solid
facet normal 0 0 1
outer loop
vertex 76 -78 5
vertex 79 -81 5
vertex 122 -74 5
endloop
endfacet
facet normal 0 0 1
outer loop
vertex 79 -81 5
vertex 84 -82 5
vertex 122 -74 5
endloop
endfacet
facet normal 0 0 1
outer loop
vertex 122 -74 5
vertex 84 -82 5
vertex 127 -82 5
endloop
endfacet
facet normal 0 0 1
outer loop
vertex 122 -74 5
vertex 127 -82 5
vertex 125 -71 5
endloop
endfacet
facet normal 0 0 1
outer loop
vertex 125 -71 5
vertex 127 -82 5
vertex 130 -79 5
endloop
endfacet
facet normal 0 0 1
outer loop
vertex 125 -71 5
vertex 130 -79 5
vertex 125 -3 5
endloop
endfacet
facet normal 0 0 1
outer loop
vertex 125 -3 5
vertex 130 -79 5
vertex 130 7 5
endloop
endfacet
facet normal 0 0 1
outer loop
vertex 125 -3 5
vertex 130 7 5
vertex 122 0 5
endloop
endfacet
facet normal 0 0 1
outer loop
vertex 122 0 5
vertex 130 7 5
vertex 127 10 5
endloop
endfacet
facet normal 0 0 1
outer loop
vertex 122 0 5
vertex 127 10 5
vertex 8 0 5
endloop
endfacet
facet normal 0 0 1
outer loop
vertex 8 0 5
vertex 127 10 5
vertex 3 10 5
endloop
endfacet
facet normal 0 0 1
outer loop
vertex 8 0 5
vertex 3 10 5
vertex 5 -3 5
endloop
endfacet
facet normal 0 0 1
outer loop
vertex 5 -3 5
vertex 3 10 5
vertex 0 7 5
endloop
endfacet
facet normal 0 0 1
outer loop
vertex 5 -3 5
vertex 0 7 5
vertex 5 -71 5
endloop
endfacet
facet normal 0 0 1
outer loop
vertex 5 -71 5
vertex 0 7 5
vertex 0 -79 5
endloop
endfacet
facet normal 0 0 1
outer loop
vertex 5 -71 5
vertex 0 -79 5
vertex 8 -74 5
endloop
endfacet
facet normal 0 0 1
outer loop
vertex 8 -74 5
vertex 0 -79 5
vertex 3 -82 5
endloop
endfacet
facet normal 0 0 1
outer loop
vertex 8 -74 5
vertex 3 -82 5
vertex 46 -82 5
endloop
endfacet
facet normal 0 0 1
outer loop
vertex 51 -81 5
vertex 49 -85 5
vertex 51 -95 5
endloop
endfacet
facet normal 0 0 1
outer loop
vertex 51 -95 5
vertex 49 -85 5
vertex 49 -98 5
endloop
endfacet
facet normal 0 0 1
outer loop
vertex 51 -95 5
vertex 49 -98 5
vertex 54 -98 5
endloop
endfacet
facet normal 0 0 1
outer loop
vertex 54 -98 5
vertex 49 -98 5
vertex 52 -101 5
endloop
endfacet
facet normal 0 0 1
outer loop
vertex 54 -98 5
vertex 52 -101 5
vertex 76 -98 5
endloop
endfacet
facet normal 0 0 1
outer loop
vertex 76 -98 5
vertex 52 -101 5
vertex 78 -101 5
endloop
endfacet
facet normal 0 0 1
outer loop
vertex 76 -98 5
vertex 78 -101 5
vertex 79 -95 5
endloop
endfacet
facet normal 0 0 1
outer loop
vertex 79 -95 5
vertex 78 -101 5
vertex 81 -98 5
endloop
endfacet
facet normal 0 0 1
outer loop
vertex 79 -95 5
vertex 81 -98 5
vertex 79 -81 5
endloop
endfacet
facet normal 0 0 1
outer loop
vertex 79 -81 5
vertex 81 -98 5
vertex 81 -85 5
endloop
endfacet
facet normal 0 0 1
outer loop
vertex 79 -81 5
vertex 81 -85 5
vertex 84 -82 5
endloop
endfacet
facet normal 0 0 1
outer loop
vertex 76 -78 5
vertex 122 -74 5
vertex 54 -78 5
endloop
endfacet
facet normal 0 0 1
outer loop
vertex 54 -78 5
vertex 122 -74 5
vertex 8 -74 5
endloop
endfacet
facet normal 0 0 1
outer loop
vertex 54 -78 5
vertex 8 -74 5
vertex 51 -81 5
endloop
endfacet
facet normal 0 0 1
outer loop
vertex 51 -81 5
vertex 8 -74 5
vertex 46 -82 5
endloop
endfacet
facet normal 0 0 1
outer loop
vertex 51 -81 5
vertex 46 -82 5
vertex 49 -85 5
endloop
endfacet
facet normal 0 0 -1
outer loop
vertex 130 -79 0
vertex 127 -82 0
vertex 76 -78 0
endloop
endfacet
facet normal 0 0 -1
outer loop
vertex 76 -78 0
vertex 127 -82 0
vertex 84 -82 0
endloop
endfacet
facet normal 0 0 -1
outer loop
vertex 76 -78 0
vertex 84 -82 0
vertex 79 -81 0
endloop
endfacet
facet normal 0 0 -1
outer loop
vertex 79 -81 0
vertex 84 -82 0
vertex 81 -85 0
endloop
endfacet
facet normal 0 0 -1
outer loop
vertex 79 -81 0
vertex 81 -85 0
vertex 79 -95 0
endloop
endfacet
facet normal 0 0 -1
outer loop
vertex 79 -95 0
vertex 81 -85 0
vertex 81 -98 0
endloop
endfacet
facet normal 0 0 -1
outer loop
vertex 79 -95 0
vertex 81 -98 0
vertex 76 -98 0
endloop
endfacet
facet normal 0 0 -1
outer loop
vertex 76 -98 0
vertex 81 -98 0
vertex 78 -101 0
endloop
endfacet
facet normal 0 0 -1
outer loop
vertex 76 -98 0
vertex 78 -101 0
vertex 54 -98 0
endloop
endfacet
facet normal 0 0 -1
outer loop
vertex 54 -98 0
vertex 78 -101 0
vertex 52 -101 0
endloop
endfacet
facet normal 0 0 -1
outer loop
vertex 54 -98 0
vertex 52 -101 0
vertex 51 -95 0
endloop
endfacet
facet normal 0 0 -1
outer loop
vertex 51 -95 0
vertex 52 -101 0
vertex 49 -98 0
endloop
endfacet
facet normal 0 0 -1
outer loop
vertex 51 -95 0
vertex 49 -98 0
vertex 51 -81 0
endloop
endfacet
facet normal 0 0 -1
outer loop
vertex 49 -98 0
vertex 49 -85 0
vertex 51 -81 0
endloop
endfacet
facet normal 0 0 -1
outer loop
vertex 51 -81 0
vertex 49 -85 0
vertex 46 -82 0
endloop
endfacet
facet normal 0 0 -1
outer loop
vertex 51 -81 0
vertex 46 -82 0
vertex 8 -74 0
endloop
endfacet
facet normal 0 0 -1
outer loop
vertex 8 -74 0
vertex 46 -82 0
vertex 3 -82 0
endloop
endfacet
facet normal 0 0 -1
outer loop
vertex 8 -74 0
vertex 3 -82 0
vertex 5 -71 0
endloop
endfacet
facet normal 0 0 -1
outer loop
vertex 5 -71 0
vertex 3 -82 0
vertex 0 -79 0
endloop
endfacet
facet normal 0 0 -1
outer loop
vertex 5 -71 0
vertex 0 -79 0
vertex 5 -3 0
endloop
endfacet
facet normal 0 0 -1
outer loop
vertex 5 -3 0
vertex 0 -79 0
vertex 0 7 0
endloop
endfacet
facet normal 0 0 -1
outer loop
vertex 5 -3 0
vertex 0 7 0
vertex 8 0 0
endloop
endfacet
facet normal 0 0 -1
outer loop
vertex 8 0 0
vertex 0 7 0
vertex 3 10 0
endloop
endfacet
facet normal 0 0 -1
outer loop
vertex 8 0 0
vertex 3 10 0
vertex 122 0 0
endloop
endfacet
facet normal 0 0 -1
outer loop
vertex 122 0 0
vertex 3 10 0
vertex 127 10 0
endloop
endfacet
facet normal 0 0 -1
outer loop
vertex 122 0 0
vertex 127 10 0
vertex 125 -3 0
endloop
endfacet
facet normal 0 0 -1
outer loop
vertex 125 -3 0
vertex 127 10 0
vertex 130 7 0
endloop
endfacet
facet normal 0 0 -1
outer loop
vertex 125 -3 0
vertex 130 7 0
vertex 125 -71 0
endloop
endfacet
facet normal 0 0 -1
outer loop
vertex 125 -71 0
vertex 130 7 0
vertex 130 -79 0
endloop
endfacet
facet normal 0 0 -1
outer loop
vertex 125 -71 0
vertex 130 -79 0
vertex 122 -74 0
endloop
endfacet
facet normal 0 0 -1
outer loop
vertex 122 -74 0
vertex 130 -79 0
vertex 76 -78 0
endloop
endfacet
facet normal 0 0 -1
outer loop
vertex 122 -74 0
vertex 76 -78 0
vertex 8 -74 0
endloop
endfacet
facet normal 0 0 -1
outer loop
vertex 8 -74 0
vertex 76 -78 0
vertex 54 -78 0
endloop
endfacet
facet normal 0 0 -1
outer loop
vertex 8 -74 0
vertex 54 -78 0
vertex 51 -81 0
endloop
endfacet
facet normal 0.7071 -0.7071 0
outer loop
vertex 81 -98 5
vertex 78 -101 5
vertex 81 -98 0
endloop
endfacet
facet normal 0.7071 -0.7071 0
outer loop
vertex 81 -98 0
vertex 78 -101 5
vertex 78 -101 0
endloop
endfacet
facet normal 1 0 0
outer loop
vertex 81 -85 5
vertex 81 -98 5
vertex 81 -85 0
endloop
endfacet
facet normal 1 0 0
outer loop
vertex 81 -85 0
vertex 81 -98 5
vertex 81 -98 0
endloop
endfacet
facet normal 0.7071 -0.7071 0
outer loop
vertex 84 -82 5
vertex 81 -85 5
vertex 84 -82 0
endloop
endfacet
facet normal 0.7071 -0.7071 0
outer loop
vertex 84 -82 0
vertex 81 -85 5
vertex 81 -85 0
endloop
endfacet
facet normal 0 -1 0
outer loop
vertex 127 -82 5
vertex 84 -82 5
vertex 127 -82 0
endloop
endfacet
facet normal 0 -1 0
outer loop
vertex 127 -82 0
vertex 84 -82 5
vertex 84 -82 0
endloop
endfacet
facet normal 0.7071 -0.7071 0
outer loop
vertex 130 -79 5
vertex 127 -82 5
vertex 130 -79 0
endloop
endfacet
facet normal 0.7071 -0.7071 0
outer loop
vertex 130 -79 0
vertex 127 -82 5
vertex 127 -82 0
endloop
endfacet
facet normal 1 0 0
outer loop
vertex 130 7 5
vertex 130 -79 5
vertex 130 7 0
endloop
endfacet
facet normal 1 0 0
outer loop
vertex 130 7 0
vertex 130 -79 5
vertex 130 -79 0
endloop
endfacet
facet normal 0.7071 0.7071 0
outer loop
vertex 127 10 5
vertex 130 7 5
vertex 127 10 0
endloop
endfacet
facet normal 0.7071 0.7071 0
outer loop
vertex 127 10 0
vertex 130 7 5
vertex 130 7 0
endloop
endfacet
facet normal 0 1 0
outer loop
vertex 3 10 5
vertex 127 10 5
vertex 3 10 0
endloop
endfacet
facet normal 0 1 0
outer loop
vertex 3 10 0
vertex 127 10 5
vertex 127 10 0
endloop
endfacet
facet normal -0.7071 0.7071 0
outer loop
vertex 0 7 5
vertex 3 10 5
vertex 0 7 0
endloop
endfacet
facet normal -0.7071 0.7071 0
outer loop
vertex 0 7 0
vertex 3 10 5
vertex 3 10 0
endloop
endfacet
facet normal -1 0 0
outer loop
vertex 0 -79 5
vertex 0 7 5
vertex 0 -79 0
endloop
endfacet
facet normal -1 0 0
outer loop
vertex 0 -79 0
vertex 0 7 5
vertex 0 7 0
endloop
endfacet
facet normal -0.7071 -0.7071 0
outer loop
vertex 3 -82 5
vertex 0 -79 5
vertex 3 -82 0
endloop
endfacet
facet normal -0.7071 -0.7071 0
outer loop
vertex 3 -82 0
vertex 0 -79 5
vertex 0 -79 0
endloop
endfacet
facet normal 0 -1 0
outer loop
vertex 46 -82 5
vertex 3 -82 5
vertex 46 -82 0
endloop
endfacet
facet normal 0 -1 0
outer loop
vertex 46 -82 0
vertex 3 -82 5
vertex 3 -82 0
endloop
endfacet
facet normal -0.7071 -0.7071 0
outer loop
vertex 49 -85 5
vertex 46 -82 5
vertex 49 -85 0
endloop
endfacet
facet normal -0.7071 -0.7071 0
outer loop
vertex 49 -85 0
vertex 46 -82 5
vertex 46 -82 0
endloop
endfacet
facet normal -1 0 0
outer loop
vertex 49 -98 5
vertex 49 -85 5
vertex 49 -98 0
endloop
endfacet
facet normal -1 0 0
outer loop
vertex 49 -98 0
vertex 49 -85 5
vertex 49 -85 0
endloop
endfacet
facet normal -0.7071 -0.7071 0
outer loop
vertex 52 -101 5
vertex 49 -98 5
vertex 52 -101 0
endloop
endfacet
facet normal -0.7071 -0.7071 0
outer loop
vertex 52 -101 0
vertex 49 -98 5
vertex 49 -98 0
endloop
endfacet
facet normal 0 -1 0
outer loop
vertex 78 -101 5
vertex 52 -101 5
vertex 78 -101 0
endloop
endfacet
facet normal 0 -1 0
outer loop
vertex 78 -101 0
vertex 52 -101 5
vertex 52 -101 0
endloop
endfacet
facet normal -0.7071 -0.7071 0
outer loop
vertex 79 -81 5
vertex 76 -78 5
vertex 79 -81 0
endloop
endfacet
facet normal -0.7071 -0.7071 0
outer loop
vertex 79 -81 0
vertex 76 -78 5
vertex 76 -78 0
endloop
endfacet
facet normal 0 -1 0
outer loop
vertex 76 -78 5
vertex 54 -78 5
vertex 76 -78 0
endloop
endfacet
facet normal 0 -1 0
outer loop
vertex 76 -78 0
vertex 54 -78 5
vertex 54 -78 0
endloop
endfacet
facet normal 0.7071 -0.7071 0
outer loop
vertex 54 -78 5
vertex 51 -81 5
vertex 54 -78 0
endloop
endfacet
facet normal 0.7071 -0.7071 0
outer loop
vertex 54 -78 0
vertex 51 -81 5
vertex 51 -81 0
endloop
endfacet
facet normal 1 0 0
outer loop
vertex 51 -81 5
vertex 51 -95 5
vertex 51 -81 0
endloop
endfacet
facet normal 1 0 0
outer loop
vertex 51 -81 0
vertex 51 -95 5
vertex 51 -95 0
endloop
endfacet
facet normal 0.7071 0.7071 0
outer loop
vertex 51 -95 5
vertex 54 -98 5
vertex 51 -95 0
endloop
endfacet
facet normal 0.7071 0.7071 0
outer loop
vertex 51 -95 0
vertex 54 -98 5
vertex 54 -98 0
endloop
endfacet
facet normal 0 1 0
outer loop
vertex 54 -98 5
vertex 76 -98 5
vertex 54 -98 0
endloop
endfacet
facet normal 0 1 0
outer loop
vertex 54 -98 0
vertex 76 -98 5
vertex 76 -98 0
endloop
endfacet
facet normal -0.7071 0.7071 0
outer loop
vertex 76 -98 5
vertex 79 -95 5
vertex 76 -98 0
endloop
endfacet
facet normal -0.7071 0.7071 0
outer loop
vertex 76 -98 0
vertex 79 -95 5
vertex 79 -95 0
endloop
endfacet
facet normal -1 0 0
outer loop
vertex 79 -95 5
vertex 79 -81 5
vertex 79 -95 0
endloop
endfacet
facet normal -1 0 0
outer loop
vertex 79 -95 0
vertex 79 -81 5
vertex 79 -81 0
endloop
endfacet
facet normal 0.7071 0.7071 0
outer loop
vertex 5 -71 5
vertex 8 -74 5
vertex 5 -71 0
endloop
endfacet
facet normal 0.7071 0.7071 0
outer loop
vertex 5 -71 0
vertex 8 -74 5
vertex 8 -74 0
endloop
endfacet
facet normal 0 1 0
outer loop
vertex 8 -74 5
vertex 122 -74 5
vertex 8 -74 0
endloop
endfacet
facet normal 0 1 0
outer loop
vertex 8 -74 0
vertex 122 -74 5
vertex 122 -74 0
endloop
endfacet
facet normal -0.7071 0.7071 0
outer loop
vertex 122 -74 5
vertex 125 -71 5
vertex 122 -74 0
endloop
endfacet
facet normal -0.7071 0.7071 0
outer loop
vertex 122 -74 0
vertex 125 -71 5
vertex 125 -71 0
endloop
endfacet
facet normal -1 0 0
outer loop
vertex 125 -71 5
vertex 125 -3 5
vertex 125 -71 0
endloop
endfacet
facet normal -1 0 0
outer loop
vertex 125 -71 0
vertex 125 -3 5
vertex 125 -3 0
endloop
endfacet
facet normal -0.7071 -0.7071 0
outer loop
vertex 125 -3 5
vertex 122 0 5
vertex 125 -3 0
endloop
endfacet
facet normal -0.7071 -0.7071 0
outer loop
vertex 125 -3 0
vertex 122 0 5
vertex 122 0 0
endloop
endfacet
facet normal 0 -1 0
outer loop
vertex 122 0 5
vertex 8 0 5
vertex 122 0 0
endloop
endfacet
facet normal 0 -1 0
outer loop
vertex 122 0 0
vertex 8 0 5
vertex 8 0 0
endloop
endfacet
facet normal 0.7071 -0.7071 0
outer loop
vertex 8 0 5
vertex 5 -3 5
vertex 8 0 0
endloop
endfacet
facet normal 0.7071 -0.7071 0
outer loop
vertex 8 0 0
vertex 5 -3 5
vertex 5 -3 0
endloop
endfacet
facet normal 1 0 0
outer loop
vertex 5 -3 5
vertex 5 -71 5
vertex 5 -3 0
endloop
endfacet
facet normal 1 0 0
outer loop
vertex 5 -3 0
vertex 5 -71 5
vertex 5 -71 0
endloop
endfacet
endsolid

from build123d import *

# Parameters (mm, degrees)
BOSS_EXTRUDE1_DEPTH = 5


with BuildPart() as part:
    # Sketch1 → Boss-Extrude1 (new body)
    with BuildSketch(Plane.XY):
        Polygon((3, 10), (127, 10), (130, 7), (130, -79), (127, -82), (84, -82), (81, -85), (81, -98), (78, -101), (52, -101), (49, -98), (49, -85), (46, -82), (3, -82), (0, -79), (0, 7), align=None)
        Polygon((125, -71), (125, -3), (122, 0), (8, 0), (5, -3), (5, -71), (8, -74), (122, -74), align=None, mode=Mode.SUBTRACT)
        Polygon((54, -78), (76, -78), (79, -81), (79, -95), (76, -98), (54, -98), (51, -95), (51, -81), align=None, mode=Mode.SUBTRACT)
    extrude(amount=BOSS_EXTRUDE1_DEPTH)


solid = part.part
